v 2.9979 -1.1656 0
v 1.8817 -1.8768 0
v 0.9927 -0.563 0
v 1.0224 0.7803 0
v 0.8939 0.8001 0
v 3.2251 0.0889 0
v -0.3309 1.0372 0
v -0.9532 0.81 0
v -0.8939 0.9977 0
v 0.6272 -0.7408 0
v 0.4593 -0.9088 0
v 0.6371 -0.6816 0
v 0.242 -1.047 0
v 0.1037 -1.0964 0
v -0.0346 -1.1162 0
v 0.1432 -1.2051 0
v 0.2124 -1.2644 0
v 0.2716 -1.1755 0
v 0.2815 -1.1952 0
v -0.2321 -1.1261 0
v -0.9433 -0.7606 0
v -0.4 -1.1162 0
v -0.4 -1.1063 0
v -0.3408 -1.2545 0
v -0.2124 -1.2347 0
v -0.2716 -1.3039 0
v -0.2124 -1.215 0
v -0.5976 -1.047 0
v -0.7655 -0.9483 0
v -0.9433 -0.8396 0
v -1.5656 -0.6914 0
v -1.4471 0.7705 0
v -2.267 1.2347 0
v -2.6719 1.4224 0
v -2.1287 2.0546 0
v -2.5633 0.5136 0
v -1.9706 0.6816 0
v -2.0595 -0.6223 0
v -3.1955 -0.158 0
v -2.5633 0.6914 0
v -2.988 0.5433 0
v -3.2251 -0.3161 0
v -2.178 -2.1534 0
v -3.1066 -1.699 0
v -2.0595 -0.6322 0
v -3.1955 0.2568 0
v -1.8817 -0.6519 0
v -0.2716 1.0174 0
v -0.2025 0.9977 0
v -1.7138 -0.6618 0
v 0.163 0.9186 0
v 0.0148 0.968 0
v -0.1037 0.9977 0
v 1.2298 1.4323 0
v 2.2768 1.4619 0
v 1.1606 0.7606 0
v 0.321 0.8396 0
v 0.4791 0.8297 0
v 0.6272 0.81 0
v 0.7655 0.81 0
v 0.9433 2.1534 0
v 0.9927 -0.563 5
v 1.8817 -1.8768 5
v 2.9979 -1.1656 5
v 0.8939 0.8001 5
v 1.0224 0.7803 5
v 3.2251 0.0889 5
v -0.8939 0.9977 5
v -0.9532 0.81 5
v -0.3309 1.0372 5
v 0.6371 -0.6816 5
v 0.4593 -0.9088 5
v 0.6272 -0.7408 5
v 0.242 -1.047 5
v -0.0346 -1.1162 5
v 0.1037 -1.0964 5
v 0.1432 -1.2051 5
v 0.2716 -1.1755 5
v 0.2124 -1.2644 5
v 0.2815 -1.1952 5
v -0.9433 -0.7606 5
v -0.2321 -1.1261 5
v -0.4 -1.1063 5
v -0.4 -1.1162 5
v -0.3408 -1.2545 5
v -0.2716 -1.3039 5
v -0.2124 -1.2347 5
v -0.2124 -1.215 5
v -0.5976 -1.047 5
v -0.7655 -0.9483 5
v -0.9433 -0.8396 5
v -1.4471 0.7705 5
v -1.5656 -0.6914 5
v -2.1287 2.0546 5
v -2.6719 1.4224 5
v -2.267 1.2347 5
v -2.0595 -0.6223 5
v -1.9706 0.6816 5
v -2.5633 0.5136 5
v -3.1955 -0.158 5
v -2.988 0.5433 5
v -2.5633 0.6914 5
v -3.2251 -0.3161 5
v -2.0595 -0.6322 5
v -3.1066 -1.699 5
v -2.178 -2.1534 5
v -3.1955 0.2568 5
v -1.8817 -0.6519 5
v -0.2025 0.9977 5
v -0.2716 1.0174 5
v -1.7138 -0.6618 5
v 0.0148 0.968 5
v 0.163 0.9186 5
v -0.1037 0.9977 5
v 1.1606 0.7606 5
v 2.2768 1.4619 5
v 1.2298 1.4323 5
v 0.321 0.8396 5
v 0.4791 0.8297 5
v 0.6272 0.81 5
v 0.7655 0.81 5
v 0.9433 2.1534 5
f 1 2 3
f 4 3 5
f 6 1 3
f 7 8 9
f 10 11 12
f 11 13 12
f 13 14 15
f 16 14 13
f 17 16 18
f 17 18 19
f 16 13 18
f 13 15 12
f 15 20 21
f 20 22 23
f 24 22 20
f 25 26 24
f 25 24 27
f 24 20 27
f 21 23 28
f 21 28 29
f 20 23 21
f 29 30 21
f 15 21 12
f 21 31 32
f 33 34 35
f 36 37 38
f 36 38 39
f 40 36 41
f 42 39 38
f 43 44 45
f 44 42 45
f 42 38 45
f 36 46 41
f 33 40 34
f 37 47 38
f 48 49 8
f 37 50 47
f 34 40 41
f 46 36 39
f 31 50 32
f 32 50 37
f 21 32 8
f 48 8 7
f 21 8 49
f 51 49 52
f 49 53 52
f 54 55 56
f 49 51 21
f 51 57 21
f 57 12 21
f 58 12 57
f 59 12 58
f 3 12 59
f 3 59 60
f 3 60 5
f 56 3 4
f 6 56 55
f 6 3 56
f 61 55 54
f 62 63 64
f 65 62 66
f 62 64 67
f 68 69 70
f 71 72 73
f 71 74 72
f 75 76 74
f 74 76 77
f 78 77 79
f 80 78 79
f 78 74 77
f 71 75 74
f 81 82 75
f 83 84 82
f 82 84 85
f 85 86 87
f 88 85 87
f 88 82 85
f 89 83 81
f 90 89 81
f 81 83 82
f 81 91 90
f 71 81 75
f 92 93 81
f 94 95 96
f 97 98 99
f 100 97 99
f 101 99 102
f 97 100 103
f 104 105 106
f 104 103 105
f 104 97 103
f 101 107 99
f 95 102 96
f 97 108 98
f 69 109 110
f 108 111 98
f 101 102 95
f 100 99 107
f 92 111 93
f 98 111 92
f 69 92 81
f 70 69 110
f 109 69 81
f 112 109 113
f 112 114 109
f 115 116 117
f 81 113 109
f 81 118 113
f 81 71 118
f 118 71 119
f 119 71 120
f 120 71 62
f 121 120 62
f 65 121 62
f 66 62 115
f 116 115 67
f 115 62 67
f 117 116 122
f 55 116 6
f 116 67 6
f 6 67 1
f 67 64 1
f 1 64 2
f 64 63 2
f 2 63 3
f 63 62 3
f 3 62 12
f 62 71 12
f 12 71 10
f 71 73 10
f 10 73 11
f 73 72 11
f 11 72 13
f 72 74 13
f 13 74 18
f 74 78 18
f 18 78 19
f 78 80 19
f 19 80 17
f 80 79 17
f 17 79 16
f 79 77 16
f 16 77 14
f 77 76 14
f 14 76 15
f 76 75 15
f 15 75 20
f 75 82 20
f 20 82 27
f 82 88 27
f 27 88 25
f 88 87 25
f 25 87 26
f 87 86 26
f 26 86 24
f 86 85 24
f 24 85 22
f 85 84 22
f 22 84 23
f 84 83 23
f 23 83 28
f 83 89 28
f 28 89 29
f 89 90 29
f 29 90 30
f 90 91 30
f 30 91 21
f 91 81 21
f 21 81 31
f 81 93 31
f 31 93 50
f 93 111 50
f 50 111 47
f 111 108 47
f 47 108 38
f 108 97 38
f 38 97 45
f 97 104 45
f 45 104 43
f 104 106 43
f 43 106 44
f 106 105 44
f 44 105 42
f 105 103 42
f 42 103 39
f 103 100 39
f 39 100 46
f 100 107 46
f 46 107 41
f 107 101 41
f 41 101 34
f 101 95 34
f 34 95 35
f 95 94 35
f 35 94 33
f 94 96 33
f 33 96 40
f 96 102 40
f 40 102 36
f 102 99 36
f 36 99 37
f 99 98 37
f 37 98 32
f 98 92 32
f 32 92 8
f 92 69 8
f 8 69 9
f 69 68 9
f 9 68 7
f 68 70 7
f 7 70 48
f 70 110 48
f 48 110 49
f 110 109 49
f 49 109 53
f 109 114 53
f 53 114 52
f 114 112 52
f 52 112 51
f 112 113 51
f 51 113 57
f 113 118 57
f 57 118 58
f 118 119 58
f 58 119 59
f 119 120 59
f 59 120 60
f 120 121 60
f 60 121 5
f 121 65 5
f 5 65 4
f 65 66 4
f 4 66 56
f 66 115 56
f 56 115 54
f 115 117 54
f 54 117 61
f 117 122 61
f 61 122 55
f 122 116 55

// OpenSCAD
// Module names are of the form poly_<inkscape-path-id>().  As a result,
// you can associate a polygon in this OpenSCAD program with the corresponding
// SVG element in the Inkscape document by looking for the XML element with
// the attribute id="inkscape-path-id".

// fudge value is used to ensure that subtracted solids are a tad taller
// in the z dimension than the polygon being subtracted from.  This helps
// keep the resulting .stl file manifold.
fudge = 0.1;

module poly_path4145(h)
{
  scale([25.4/90, -25.4/90, 1]) union()
  {
    linear_extrude(height=h)
      polygon([[11.427500,-0.315000],[10.622500,4.130000],[6.667500,6.650000],[3.517500,1.995000],[2.257500,2.415000],[2.222500,2.625000],[1.627500,3.220000],[0.857500,3.710000],[0.962500,4.165000],[0.997500,4.235000],[0.752500,4.480000],[0.507500,4.270000],[0.367500,3.885000],[-0.122500,3.955000],[-0.822500,3.990000],[-0.752500,4.305000],[-0.752500,4.375000],[-0.962500,4.620000],[-1.207500,4.445000],[-1.417500,3.955000],[-1.417500,3.920000],[-2.117500,3.710000],[-2.712500,3.360000],[-3.342500,2.975000],[-3.342500,2.695000],[-4.602500,2.555000],[-5.547500,2.450000],[-6.072500,2.345000],[-6.667500,2.310000],[-7.297500,2.205000],[-7.297500,2.240000],[-7.717500,7.630000],[-11.007500,6.020000],[-11.427500,1.120000],[-11.322500,0.560000],[-11.322500,-0.910000],[-10.587500,-1.925000],[-9.467500,-5.040000],[-7.542500,-7.280000],[-8.032500,-4.375000],[-9.082500,-2.450000],[-9.082500,-1.820000],[-6.982500,-2.415000],[-5.127500,-2.730000],[-3.377500,-2.870000],[-3.167500,-3.535000],[-1.172500,-3.675000],[-0.962500,-3.605000],[-0.717500,-3.535000],[-0.367500,-3.535000],[0.052500,-3.430000],[0.577500,-3.255000],[1.137500,-2.975000],[1.697500,-2.940000],[2.222500,-2.870000],[2.712500,-2.870000],[3.167500,-2.835000],[3.622500,-2.765000],[4.112500,-2.695000],[4.357500,-5.075000],[3.342500,-7.630000],[8.067500,-5.180000],[11.427500,-0.315000]]);
  }
}

poly_path4145(5);
